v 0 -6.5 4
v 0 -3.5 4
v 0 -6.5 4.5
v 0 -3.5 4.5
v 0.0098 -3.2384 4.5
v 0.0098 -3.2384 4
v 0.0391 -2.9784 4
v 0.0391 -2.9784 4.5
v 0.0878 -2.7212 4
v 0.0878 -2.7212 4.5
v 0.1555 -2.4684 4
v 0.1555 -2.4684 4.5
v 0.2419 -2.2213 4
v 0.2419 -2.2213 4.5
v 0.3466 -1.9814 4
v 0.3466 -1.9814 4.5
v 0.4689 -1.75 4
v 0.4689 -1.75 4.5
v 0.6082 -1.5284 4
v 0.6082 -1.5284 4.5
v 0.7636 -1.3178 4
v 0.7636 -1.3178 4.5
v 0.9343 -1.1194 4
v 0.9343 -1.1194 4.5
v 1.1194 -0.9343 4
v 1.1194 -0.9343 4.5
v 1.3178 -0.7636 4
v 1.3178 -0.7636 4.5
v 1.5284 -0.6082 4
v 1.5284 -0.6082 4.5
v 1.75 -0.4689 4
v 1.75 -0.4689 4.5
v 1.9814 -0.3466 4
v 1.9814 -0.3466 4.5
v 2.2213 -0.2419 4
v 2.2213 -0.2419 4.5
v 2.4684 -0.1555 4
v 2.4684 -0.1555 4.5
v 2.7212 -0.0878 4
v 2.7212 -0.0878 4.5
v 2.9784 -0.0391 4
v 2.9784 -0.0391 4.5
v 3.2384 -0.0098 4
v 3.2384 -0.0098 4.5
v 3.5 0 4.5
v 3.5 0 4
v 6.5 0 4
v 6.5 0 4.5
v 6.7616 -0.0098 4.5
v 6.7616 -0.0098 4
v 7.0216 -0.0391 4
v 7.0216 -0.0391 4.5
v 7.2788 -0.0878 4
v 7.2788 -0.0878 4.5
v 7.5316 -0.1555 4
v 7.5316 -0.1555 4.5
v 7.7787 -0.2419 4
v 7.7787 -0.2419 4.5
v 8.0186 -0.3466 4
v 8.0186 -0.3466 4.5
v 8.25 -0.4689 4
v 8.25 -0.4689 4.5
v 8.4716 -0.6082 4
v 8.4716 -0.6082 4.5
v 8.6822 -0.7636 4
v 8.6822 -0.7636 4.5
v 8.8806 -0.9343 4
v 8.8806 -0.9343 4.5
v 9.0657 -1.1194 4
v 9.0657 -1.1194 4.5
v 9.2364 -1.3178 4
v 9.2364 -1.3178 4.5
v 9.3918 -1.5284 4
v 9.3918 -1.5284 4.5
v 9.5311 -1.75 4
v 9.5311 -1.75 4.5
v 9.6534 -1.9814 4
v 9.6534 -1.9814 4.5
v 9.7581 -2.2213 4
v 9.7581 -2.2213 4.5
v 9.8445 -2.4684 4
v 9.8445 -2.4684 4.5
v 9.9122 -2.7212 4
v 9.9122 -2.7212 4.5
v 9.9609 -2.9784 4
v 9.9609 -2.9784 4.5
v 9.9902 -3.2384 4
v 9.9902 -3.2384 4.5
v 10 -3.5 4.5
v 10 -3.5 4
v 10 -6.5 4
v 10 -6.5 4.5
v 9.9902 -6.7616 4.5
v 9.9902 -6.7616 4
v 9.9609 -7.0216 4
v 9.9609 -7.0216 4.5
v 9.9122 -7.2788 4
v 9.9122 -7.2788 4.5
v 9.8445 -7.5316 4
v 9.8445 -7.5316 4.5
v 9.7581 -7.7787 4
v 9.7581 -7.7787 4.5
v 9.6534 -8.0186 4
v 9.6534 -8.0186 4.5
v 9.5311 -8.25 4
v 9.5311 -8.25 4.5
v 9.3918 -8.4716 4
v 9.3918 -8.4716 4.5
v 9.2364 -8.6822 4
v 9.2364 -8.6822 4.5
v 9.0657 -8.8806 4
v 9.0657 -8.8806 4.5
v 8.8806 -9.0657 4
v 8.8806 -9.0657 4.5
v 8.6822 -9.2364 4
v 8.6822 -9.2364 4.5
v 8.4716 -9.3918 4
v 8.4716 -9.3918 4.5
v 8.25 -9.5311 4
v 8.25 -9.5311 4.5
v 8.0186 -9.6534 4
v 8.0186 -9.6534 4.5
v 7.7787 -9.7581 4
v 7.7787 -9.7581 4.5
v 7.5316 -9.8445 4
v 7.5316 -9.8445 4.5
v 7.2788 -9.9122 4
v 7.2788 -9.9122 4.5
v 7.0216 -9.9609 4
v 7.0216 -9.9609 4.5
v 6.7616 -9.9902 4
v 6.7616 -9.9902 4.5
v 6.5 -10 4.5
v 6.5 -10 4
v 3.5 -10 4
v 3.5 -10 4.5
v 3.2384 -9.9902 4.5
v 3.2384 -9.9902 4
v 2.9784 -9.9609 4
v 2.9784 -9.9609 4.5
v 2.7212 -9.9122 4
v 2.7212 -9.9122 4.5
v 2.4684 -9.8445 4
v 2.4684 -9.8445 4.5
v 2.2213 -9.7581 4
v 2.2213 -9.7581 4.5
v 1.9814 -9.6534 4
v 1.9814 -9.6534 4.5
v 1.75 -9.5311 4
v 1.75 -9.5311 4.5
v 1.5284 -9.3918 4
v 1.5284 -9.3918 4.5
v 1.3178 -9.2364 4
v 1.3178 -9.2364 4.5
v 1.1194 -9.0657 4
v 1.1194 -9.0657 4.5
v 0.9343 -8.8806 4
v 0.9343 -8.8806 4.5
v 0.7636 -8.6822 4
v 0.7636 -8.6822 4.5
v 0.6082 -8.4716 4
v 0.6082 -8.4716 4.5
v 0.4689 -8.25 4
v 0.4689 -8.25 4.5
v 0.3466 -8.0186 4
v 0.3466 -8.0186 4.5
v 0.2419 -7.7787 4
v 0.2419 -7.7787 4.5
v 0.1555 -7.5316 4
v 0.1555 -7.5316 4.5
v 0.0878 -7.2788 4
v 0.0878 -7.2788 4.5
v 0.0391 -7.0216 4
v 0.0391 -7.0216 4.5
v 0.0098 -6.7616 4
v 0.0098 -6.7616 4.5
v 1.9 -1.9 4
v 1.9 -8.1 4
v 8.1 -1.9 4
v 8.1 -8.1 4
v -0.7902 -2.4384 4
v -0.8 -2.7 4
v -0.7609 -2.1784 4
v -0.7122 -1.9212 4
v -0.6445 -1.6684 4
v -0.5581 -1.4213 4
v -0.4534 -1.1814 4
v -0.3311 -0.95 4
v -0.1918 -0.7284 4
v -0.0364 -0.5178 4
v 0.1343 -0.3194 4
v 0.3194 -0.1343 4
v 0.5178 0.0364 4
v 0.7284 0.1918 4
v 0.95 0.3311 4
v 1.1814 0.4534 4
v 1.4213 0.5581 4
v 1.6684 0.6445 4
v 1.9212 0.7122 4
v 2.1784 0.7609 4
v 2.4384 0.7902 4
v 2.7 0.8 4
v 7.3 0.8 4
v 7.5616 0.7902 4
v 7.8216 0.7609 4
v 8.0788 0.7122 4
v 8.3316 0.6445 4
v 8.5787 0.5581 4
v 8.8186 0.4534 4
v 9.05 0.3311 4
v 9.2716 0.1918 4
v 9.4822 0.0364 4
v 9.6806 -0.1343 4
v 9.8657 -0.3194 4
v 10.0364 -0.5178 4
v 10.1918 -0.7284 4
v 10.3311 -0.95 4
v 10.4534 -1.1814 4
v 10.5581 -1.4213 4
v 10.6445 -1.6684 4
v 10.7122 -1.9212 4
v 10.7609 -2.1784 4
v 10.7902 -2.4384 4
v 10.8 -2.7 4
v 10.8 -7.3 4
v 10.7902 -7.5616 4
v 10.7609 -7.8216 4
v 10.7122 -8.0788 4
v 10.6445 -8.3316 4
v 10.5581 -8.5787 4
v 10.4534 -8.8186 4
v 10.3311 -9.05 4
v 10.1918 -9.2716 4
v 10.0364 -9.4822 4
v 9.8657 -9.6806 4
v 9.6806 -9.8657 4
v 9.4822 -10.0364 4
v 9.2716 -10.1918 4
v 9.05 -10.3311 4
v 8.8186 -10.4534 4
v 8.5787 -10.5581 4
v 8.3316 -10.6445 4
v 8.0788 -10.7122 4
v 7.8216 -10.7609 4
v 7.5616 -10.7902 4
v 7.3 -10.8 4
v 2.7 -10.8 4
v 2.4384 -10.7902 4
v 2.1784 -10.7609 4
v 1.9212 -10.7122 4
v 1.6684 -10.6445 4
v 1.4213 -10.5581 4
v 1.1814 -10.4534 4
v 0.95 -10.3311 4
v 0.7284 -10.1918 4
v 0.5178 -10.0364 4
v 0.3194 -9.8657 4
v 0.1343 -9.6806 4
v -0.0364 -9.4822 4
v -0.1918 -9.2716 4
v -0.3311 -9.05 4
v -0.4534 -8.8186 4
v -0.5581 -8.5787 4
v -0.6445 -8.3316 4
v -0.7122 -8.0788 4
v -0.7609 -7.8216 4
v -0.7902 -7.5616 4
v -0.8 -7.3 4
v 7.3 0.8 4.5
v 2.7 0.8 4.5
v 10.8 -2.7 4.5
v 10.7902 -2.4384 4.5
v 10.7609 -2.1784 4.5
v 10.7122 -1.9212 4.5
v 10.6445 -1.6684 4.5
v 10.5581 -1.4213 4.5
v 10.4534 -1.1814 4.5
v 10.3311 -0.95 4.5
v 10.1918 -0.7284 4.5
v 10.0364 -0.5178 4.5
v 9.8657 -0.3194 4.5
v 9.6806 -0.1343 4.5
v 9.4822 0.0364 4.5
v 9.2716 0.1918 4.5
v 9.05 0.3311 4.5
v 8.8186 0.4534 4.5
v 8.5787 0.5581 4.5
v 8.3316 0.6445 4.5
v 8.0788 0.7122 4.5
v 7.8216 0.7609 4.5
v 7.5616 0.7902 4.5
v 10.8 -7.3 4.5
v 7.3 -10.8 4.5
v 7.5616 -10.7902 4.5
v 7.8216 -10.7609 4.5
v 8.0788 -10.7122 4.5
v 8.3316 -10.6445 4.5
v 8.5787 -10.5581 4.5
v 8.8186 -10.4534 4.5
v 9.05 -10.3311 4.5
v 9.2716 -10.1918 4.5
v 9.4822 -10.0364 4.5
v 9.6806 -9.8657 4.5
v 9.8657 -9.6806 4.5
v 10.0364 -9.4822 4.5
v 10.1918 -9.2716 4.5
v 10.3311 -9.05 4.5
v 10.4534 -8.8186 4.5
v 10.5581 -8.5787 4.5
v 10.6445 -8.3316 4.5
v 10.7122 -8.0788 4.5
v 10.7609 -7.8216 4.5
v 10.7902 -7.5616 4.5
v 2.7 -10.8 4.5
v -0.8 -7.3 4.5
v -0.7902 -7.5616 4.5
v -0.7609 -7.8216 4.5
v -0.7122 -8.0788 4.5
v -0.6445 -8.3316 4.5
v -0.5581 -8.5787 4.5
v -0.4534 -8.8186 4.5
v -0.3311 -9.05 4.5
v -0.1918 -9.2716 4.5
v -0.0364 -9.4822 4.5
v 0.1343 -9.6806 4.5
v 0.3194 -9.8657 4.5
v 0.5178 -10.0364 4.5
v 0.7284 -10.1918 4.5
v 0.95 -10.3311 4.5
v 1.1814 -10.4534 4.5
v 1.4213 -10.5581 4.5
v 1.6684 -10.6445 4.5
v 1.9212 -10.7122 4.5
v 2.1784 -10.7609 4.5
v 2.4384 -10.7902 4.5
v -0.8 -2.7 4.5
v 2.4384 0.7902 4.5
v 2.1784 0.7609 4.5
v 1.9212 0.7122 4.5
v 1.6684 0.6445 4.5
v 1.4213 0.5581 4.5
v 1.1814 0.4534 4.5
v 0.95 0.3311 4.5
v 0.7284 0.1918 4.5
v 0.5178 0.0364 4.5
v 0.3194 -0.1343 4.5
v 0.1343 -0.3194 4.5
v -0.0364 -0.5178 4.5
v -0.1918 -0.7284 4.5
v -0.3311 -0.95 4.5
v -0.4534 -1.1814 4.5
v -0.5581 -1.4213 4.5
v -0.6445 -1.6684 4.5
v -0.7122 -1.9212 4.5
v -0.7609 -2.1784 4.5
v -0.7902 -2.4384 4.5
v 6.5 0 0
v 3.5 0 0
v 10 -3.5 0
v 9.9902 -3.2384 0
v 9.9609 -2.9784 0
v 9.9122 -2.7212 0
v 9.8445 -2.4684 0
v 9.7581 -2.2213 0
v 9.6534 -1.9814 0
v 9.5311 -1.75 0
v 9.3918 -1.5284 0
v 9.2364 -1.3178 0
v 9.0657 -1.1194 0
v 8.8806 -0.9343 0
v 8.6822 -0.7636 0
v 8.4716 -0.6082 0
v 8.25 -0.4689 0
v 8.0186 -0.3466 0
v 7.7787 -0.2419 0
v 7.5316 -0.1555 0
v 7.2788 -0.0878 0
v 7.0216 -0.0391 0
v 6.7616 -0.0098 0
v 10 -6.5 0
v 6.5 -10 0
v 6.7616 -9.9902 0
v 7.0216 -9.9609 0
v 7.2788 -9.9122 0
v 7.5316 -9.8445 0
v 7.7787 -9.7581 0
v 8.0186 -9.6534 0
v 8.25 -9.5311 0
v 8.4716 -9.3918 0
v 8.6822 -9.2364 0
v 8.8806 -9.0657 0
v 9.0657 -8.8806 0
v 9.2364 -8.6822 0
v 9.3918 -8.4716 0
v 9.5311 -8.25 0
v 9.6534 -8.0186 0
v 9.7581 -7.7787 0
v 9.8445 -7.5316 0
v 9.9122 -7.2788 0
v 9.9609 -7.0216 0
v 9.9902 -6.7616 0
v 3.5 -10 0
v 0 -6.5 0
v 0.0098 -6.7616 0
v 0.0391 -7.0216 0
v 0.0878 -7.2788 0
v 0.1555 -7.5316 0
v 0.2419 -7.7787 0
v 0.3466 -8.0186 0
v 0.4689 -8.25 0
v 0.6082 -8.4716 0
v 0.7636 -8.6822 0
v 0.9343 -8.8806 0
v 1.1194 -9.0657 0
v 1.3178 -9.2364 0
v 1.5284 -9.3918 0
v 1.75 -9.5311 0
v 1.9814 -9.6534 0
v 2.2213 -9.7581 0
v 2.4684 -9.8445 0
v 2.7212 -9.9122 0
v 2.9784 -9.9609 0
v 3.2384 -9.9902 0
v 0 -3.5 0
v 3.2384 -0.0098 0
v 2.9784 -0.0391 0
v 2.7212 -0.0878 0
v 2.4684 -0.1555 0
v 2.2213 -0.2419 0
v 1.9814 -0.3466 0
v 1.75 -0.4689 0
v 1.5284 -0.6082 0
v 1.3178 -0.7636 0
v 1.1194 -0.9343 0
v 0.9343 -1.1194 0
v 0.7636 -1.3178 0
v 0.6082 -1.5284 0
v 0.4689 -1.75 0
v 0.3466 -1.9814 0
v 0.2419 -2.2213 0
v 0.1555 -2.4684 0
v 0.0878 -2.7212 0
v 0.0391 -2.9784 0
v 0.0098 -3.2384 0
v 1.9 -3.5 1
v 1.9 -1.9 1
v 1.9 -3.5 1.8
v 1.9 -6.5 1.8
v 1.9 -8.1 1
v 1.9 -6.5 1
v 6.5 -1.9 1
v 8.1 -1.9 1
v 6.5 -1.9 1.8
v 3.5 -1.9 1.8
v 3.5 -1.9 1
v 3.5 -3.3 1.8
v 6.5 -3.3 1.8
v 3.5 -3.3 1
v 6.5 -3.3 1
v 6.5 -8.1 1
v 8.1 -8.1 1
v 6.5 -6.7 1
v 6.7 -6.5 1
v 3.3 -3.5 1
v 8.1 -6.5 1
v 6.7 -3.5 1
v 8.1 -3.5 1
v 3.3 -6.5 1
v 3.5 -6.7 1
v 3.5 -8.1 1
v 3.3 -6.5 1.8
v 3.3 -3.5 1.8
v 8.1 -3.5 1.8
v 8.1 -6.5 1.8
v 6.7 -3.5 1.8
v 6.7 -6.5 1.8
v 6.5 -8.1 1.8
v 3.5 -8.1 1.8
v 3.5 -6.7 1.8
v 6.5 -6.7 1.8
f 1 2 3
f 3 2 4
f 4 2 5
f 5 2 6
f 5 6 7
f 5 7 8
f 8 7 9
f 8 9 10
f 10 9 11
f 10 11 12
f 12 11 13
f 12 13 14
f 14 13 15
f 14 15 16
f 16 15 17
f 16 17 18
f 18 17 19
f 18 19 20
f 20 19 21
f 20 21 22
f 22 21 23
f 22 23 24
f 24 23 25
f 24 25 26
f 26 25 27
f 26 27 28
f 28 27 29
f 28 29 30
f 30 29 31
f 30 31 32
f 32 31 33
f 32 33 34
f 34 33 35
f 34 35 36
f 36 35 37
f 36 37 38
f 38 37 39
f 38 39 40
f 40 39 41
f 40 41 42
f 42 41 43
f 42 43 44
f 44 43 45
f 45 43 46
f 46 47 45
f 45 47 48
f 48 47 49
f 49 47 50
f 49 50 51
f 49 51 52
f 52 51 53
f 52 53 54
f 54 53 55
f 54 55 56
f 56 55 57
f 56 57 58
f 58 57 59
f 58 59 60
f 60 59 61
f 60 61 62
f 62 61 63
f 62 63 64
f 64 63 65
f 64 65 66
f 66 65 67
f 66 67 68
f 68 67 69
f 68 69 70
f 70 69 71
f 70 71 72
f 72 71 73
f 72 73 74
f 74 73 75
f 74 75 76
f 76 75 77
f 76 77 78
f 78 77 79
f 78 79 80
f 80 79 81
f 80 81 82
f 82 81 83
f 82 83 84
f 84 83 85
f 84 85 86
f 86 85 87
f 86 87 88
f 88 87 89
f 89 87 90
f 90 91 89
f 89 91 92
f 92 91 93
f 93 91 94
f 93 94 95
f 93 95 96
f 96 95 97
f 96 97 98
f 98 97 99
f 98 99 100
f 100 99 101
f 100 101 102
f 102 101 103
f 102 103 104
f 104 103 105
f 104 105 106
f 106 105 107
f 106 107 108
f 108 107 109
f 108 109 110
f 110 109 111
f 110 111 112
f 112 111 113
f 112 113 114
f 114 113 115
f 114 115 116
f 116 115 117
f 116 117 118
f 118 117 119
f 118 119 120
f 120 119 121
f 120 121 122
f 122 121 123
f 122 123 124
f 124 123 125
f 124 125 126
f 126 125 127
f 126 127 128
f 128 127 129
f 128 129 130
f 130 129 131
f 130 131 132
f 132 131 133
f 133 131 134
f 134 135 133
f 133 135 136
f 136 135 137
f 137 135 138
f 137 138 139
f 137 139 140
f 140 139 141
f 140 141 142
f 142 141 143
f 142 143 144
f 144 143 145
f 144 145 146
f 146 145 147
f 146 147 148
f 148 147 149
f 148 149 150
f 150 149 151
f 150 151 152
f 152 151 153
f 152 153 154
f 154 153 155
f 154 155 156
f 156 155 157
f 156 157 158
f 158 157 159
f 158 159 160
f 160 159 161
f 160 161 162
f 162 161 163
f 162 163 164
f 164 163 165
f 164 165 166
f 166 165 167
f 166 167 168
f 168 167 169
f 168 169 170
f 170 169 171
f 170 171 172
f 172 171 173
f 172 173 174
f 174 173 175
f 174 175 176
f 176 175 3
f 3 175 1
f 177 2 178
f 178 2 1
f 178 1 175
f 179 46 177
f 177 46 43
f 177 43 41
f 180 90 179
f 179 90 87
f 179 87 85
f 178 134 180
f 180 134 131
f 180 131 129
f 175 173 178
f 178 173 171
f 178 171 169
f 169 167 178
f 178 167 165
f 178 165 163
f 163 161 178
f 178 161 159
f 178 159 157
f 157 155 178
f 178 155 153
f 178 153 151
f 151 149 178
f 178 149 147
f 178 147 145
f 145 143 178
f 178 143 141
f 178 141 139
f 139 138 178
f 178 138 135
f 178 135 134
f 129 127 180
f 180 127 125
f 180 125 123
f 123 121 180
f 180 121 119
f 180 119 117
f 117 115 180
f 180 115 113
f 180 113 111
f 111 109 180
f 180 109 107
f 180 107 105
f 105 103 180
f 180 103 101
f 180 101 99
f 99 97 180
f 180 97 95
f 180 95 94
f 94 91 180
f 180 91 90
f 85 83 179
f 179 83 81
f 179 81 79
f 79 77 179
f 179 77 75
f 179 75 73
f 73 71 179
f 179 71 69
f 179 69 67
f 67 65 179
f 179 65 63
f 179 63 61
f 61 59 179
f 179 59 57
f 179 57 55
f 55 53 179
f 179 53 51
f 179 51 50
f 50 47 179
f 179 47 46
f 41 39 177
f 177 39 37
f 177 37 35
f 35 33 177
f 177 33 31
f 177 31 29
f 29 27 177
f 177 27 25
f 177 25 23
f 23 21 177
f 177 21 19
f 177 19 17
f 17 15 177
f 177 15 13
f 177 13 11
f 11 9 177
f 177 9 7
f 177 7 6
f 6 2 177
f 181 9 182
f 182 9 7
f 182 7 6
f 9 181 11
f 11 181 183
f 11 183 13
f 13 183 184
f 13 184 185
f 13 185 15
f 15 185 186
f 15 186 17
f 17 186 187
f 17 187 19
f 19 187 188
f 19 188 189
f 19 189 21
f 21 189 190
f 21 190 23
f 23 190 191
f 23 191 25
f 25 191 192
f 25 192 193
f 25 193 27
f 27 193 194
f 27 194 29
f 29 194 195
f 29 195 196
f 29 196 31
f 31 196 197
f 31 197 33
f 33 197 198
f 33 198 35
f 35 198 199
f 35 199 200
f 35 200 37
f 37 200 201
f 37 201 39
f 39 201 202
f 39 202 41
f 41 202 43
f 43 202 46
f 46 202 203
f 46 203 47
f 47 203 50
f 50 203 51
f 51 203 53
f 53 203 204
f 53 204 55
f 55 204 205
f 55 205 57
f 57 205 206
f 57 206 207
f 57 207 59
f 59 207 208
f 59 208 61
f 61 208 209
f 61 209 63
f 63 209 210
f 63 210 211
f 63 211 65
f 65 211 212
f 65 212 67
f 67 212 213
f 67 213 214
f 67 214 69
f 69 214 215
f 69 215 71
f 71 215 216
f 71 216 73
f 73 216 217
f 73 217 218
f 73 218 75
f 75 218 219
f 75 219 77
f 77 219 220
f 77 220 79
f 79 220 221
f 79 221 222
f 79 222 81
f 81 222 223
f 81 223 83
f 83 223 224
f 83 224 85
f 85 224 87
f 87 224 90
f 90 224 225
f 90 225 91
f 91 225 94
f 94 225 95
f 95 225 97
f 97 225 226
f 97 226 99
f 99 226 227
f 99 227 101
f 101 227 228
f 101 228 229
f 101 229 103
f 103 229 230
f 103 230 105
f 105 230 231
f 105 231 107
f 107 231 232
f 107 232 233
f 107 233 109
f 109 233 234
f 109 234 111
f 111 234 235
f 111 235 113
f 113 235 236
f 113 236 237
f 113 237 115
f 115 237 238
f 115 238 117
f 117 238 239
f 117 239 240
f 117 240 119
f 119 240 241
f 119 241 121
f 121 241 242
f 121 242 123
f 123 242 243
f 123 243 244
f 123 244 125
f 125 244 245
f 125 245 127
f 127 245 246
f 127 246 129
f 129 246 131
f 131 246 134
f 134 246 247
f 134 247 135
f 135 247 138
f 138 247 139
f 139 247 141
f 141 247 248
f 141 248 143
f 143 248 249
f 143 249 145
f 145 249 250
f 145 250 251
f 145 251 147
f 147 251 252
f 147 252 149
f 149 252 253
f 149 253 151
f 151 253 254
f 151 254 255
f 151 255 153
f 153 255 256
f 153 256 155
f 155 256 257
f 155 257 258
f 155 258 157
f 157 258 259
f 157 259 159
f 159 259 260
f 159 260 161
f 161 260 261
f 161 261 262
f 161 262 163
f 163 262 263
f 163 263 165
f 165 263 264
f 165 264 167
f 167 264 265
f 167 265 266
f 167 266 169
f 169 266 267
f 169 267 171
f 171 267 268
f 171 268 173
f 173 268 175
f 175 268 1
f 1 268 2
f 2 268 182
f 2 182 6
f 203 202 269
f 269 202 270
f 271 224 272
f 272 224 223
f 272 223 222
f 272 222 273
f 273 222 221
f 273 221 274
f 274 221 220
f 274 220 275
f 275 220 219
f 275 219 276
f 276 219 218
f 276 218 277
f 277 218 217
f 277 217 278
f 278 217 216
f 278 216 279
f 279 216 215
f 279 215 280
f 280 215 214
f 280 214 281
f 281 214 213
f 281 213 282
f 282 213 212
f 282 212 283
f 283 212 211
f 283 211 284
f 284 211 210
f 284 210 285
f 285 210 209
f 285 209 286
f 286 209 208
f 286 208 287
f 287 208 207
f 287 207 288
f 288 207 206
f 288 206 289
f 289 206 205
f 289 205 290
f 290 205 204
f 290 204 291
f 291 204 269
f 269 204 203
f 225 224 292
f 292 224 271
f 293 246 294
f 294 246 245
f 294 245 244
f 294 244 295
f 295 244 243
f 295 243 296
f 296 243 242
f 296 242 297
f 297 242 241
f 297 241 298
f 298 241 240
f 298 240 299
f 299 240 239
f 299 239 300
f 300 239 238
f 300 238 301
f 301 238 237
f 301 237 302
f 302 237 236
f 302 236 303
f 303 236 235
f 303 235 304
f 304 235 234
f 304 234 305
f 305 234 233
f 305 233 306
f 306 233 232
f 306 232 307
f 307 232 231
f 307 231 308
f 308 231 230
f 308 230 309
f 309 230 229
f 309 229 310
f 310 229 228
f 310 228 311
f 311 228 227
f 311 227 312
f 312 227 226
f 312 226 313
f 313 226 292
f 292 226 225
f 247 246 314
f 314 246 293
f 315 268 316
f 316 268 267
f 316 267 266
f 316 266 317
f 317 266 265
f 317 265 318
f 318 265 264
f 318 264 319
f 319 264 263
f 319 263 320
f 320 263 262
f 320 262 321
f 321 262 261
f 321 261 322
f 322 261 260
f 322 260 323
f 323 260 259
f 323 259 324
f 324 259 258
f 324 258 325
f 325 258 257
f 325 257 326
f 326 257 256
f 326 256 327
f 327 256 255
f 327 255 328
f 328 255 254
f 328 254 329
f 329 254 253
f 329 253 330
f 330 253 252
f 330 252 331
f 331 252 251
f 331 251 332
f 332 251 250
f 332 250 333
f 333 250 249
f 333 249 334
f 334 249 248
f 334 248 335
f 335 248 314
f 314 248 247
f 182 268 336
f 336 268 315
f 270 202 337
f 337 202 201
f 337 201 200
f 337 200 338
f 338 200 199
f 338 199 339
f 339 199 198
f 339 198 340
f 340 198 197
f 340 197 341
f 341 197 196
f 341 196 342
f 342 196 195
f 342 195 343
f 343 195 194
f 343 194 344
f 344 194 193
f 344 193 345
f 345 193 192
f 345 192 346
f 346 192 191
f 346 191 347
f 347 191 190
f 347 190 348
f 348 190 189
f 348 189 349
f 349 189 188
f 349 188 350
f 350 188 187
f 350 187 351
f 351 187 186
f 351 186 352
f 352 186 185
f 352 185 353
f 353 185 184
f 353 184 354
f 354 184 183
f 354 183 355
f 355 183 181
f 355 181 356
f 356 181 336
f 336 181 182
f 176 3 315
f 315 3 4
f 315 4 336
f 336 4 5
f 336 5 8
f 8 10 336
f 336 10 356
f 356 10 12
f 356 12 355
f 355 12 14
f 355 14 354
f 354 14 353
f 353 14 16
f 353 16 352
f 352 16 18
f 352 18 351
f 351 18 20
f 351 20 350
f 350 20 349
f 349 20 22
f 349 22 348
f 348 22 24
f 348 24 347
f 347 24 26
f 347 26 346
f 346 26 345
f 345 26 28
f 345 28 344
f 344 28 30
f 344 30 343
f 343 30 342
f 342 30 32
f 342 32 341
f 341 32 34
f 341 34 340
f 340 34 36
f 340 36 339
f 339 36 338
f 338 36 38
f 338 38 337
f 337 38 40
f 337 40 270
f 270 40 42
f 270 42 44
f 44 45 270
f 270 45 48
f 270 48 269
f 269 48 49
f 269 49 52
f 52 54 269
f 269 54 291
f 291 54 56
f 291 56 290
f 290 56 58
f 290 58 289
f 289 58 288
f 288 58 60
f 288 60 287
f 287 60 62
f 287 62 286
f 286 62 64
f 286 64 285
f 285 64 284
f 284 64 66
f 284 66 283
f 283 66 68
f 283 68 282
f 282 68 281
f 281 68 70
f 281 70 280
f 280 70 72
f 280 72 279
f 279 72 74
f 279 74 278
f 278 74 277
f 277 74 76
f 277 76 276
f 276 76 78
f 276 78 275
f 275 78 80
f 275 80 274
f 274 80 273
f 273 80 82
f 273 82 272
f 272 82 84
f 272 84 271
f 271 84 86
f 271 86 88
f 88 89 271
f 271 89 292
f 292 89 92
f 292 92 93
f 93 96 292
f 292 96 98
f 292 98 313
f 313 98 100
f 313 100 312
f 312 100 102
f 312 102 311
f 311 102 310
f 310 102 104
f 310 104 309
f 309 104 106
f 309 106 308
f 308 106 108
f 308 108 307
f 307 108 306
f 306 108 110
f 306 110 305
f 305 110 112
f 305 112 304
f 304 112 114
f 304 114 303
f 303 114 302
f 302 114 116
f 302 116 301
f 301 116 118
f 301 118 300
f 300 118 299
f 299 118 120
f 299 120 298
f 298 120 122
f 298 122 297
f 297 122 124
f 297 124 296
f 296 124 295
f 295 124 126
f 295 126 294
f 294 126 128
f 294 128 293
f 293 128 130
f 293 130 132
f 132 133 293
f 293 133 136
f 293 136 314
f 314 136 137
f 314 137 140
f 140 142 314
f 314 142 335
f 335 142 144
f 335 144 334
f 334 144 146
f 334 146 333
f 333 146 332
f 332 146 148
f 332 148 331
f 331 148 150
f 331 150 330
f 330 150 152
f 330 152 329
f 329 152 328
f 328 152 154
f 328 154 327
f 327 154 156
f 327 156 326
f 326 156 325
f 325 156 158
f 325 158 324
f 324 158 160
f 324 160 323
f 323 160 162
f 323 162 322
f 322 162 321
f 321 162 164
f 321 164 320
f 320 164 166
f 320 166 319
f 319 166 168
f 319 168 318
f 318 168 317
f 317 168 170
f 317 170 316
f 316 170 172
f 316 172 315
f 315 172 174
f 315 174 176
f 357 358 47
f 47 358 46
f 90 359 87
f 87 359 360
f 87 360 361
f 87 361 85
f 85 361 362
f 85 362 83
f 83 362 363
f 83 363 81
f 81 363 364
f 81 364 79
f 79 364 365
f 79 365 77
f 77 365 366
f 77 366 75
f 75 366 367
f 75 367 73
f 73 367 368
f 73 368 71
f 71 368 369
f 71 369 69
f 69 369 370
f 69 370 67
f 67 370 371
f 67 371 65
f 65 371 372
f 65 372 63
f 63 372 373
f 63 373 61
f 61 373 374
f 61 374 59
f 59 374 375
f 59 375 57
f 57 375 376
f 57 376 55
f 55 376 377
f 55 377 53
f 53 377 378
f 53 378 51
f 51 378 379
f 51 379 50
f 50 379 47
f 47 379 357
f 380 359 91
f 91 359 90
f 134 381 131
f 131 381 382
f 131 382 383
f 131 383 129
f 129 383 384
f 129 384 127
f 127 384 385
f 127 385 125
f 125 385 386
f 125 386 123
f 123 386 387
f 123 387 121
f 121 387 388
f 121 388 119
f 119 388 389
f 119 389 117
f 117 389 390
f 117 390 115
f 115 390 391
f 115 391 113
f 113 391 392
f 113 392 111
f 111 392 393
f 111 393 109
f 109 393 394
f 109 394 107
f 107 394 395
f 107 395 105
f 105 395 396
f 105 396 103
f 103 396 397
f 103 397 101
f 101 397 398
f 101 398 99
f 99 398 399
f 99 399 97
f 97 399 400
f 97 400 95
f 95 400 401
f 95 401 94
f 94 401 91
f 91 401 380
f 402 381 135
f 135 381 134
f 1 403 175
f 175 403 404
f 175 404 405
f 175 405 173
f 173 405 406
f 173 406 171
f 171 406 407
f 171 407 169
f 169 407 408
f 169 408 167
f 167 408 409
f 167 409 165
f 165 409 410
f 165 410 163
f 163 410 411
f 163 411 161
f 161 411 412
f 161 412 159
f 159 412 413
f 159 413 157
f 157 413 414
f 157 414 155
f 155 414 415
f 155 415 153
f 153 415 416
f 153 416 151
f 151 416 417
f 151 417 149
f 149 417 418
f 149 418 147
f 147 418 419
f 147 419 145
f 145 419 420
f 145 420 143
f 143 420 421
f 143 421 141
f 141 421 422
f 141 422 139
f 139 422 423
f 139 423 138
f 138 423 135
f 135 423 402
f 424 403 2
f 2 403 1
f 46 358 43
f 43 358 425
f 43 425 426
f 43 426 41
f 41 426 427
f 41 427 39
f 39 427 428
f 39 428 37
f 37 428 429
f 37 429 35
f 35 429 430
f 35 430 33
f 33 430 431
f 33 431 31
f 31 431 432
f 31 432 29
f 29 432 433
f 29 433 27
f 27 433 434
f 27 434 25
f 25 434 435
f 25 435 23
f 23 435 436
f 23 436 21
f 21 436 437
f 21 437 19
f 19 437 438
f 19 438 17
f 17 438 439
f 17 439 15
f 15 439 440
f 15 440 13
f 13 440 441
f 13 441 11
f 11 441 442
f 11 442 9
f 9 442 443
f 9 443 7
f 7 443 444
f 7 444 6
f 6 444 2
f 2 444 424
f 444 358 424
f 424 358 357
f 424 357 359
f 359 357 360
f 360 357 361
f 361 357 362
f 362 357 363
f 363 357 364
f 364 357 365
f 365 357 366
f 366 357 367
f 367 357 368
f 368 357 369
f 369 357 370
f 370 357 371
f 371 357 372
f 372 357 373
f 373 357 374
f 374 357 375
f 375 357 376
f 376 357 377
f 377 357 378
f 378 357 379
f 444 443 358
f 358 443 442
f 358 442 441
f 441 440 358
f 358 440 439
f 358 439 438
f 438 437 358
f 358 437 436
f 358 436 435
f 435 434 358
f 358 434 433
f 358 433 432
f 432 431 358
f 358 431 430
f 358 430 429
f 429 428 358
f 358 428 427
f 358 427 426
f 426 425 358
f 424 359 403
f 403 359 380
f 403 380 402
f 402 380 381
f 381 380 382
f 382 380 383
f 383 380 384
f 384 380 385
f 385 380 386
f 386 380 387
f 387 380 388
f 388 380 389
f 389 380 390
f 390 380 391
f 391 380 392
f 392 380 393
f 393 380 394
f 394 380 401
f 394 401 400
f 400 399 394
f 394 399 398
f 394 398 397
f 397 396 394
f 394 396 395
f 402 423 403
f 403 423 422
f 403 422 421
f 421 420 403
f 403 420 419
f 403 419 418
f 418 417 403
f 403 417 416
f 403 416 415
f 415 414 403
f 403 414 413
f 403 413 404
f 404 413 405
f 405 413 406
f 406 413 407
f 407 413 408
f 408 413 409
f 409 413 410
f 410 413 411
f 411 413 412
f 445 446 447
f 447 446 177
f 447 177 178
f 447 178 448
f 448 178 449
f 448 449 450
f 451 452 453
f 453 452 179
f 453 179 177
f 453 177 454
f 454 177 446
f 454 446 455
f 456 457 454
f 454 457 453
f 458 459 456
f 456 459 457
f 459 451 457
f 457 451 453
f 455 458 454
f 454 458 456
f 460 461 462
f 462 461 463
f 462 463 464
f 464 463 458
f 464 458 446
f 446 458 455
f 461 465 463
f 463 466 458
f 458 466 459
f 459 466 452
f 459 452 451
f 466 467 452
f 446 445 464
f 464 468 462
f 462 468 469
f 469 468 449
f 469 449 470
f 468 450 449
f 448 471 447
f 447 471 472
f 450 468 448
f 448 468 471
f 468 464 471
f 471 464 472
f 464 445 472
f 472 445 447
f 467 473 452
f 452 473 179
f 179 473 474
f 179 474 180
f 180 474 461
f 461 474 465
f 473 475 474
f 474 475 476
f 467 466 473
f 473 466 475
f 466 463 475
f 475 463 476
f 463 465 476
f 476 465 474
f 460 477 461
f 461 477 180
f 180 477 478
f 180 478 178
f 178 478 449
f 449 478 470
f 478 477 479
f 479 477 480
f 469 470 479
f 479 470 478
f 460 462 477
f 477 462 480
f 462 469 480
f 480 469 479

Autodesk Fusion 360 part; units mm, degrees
sketch "Esquisse1" plane through (0, 0, 0) normal (0, 0, 1) x (1, 0, 0)
  line L0 (3.5, 0) -> (6.5, 0)
  line L1 (10, -3.5) -> (10, -6.5)
  line L2 (6.5, -10) -> (3.5, -10)
  line L3 (0, -6.5) -> (0, -3.5)
  arc A0 (3.5, 0) -> (0, -3.5) centre (3.5, -3.5) ccw
  arc A1 (10, -3.5) -> (6.5, 0) centre (6.5, -3.5) ccw
  arc A2 (6.5, -10) -> (10, -6.5) centre (6.5, -6.5) ccw
  arc A3 (0, -6.5) -> (3.5, -10) centre (3.5, -6.5) ccw
  point P0 (10, 0)
  point P1 (0, -10)
  dimension "d2" = 10
  dimension "d3" = 10
  dimension "d4" = 3.5
  dimension "d6" = 3.5
  dimension "d7" = 3.5
  dimension "d8" = 3.5
extrude "Extrusion1" add sketch "Esquisse1" along normal blind 4
ref_plane "Plan de construction1" through (0, 0, 4) normal (0, 0, 1) x (1, 0, 0)
sketch "button" plane through (0, 0, 4) normal (0, 0, 1) x (1, 0, 0)
  line L0 (0, 0) -> (1.9, 0) construction
  line L1 (0, 0) -> (0, -1.9) construction
  line L2 (1.9, 0) -> (1.9, -10) construction
  line L3 (0, -1.9) -> (10, -1.9) construction
  line L4 (1.9, -1.9) -> (8.1, -1.9)
  line L5 (8.1, -1.9) -> (8.1, -8.1)
  line L6 (8.1, -8.1) -> (1.9, -8.1)
  line L7 (1.9, -8.1) -> (1.9, -1.9)
  point P0 (1.9, -1.9)
  dimension "d14" = 1.9
  dimension "d15" = 1.9
  dimension "d16" = 10
  dimension "d17" = 10
  dimension "d18" = 6.2
  dimension "d19" = 6.2
extrude "Extrude2" cut sketch "button" against normal blind 3
ref_plane "WorkPlane2" through (0, 0, 1) normal (0, 0, 1) x (1, 0, 0)
sketch "buttonHolder" plane through (0, 0, 1) normal (0, 0, 1) x (1, 0, 0)
  line L0 (0, 0) -> (3.5, 0) construction
  line L1 (0, 0) -> (0, -1.9) construction
  line L2 (3.5, 0) -> (3.5, -10) construction
  line L3 (0, -1.9) -> (10, -1.9) construction
  line L4 (3.5, -1.9) -> (6.5, -1.9)
  line L5 (6.5, -1.9) -> (6.5, -3.3)
  line L6 (6.5, -3.3) -> (3.5, -3.3)
  line L7 (3.5, -3.3) -> (3.5, -1.9)
  line L8 (0, 0) -> (0, -8.1) construction
  line L9 (0, -8.1) -> (10, -8.1) construction
  line L10 (3.5, -8.1) -> (6.5, -8.1)
  line L11 (6.5, -8.1) -> (6.5, -6.7)
  line L12 (6.5, -6.7) -> (3.5, -6.7)
  line L13 (3.5, -6.7) -> (3.5, -8.1)
  line L14 (0, 0) -> (1.9, 0) construction
  line L15 (1.9, 0) -> (1.9, -3.5) construction
  line L16 (1.9, -3.5) -> (3.3, -3.5)
  line L17 (3.3, -3.5) -> (3.3, -6.5)
  line L18 (3.3, -6.5) -> (1.9, -6.5)
  line L19 (1.9, -6.5) -> (1.9, -3.5)
  line L20 (0, 0) -> (8.1, 0) construction
  line L21 (8.1, 0) -> (8.1, -3.5) construction
  line L22 (8.1, -3.5) -> (6.7, -3.5)
  line L23 (6.7, -3.5) -> (6.7, -6.5)
  line L24 (6.7, -6.5) -> (8.1, -6.5)
  line L25 (8.1, -6.5) -> (8.1, -3.5)
  point P0 (3.5, -1.9)
  point P1 (3.5, -8.1)
  dimension "d25" = 3.5
  dimension "d26" = 1.9
  dimension "d27" = 10
  dimension "d28" = 10
  dimension "d29" = 3
  dimension "d30" = 1.4
  dimension "d32" = 8.1
  dimension "d33" = 10
  dimension "d34" = 3
  dimension "d35" = 1.4
  dimension "d36" = 1.9
  dimension "d37" = 3.5
  dimension "d38" = 1.4
  dimension "d39" = 3
  dimension "d40" = 8.1
  dimension "d41" = 3.5
  dimension "d42" = 1.4
  dimension "d43" = 3
extrude "Extrude3" add sketch "buttonHolder" along normal blind 0.8
sketch "collar" plane through (0, 0, 4) normal (0, 0, 1) x (1, 0, 0)
  line L0 (2.7, 0.8) -> (7.3, 0.8)
  line L1 (-0.8, -7.3) -> (-0.8, -2.7)
  line L2 (10.8, -2.7) -> (10.8, -7.3)
  arc A0 (10.8, -2.7) -> (7.3, 0.8) centre (7.3, -2.7) ccw
  line L3 (7.3, -10.8) -> (2.7, -10.8)
  arc A1 (7.3, -10.8) -> (10.8, -7.3) centre (7.3, -7.3) ccw
  arc A2 (2.7, 0.8) -> (-0.8, -2.7) centre (2.7, -2.7) ccw
  arc A3 (-0.8, -7.3) -> (2.7, -10.8) centre (2.7, -7.3) ccw
  line L4 (0, 0) -> (-0.8, 0) construction
  line L5 (-0.8, 0) -> (-0.8, 0.8) construction
  line L6 (-0.8, 0.8) -> (0, 0.8) construction
  line L7 (0, 0.8) -> (0, 0) construction
  point P0 (10.8, 0.8)
  point P1 (-0.8, -10.8)
  point P2 (-0.8, 0.8)
  point P3 (-0.8, 0.8)
  dimension "d47" = 11.6
  dimension "d48" = 11.6
  dimension "d49" = 3.5
  dimension "d50" = 3.5
  dimension "d51" = 3.5
  dimension "d52" = 3.5
  dimension "d54" = 0.8
  dimension "d55" = 0.8
extrude "Extrude4" add sketch "collar" along normal blind 0.5
sketch "innerCollar" plane through (0, 0, 4) normal (0, 0, 1) x (1, 0, 0)
  line L0 (6.5, -10) -> (3.5, -10)
  arc A0 (0, -6.5) -> (3.5, -10) centre (3.5, -6.5) ccw
  arc A1 (6.5, -10) -> (10, -6.5) centre (6.5, -6.5) ccw
  arc A2 (3.5, 0) -> (0, -3.5) centre (3.5, -3.5) ccw
  line L1 (10, -3.5) -> (10, -6.5)
  arc A3 (10, -3.5) -> (6.5, 0) centre (6.5, -3.5) ccw
  line L2 (0, -6.5) -> (0, -3.5)
  line L3 (3.5, 0) -> (6.5, 0)
  point P0 (10, 0)
  point P1 (0, -10)
  dimension "d59" = 10
  dimension "d60" = 10
  dimension "d61" = 3.5
  dimension "d62" = 3.5
  dimension "d63" = 3.5
  dimension "d64" = 3.5
extrude "Extrude5" cut sketch "innerCollar" along normal blind 0.5
equation "capSize = 10 mm"
equation "d2 = capSize"
equation "d3 = capSize"
equation "d4 = capRadius"
equation "capRadius = 3.5 mm"
equation "d6 = capRadius"
equation "d7 = capRadius"
equation "d8 = capRadius"
equation "d9 = capHeight"
equation "capHeight = 4 mm"
equation "d12 = capHeight"
equation "buttonSize = 6.2 mm"
equation "d14 = ( capSize - buttonSize ) / 2"
equation "d15 = ( capSize - buttonSize ) / 2"
equation "d16 = capSize"
equation "d17 = capSize"
equation "d18 = buttonSize"
equation "d19 = buttonSize"
equation "d20 = -buttonHeight"
equation "buttonHeight = 3 mm"
equation "d23 = -buttonHeight"
equation "buttonHolderLength = 3 mm"
equation "d25 = ( capSize - buttonHolderLength ) / 2"
equation "d26 = ( capSize - buttonSize ) / 2"
equation "d27 = capSize"
equation "d28 = capSize"
equation "d29 = buttonHolderLength"
equation "d30 = buttonHolderWidth"
equation "buttonHolderWidth = 1.4 mm"
equation "d32 = capSize - ( ( capSize - buttonSize ) / 2 )"
equation "d33 = capSize"
equation "d34 = buttonHolderLength"
equation "d35 = buttonHolderWidth"
equation "d36 = ( capSize - buttonSize ) / 2"
equation "d37 = ( capSize - buttonHolderLength ) / 2"
equation "d38 = buttonHolderWidth"
equation "d39 = buttonHolderLength"
equation "d40 = capSize - ( ( capSize - buttonSize ) / 2 )"
equation "d41 = ( capSize - buttonHolderLength ) / 2"
equation "d42 = buttonHolderWidth"
equation "d43 = buttonHolderLength"
equation "buttonHolderHeight = 0.8 mm"
equation "d45 = buttonHolderHeight"
equation "d47 = capSize + ( 2 * collarSize )"
equation "d48 = capSize + ( 2 * collarSize )"
equation "d49 = capRadius"
equation "d50 = capRadius"
equation "d51 = capRadius"
equation "d52 = capRadius"
equation "collarSize = 0.8 mm"
equation "d54 = collarSize"
equation "d55 = collarSize"
equation "collarHeight = 0.5 mm"
equation "d57 = collarHeight"
equation "d59 = capSize"
equation "d60 = capSize"
equation "d61 = capRadius"
equation "d62 = capRadius"
equation "d63 = capRadius"
equation "d64 = capRadius"
equation "d65 = collarHeight"
